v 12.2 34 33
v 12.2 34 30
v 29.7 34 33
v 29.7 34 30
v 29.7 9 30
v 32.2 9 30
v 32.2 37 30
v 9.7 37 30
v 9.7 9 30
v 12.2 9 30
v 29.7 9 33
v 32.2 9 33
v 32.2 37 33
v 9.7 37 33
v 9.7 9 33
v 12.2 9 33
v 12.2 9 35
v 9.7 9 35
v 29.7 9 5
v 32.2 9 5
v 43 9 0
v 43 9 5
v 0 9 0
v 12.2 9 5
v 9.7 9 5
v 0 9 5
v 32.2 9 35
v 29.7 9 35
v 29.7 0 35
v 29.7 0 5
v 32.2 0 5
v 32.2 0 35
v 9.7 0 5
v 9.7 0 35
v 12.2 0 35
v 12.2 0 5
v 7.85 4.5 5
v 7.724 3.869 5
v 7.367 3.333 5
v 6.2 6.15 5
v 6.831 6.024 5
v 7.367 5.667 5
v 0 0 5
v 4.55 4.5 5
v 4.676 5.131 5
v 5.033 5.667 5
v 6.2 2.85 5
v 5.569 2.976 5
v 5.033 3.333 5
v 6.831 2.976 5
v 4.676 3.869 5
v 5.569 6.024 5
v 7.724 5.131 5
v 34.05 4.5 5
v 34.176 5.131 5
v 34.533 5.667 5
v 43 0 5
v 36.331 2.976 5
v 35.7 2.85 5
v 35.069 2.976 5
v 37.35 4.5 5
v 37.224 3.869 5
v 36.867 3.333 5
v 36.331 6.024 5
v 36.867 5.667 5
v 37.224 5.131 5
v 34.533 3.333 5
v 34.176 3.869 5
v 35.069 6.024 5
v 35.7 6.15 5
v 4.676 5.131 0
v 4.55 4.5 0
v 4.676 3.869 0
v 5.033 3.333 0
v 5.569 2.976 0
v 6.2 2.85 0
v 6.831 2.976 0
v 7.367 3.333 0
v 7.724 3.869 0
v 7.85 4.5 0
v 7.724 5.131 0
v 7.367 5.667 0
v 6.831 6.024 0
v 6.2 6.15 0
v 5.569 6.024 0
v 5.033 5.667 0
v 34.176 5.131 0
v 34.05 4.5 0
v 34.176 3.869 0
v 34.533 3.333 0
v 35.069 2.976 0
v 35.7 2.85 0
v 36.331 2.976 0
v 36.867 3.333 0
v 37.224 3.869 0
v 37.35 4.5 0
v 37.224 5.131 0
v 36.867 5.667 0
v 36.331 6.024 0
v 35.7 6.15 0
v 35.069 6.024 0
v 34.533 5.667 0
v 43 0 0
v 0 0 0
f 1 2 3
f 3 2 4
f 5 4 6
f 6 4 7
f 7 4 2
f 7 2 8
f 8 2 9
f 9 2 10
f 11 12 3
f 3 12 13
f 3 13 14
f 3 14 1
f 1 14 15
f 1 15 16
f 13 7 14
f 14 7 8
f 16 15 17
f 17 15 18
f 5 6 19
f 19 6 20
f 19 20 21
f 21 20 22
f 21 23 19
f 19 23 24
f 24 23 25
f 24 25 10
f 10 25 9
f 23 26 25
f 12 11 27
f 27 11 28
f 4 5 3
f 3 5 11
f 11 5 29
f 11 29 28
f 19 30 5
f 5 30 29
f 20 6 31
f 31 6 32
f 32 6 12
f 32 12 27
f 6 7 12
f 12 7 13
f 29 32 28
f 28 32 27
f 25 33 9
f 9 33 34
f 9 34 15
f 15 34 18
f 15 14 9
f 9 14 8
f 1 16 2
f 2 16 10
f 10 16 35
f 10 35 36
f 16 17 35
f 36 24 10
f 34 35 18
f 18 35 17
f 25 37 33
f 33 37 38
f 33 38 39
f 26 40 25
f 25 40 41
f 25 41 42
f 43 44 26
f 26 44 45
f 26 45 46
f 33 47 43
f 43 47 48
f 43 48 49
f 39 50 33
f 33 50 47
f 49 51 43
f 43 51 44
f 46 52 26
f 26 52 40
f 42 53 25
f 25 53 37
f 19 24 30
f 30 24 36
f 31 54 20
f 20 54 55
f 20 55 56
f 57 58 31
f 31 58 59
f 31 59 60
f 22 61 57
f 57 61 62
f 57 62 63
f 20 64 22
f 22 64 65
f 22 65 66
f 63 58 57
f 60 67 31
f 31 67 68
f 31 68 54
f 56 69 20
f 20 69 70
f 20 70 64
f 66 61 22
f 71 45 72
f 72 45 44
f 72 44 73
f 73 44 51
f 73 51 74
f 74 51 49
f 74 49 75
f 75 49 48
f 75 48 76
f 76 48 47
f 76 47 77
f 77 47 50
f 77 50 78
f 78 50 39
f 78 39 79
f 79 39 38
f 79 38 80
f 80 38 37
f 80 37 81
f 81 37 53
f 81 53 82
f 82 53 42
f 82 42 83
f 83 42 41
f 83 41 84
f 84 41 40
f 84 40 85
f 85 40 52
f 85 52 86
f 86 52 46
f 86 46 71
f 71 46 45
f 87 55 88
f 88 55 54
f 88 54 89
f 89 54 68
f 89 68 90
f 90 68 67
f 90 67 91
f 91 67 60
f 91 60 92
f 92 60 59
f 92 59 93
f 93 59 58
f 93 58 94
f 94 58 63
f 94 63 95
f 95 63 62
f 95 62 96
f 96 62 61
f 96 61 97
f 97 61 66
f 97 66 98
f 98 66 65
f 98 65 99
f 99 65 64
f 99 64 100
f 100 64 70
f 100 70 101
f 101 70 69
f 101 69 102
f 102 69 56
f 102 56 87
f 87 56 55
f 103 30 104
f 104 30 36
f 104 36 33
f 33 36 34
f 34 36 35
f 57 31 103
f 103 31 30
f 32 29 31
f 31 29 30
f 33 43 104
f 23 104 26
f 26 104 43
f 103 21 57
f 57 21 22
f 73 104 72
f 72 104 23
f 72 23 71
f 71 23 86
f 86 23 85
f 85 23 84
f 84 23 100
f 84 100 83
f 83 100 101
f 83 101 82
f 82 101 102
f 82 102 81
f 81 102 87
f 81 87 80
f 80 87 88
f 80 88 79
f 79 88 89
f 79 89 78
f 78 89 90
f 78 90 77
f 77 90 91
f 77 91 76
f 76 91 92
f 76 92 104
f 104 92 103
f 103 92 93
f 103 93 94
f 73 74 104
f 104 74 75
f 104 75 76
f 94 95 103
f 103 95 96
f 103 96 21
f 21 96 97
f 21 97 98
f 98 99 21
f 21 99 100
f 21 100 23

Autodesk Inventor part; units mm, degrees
ref_plane "YZ Plane" through (0, 0, 0) normal (1, 0, 0) x (0, 1, 0)
ref_plane "XZ Plane" through (0, 0, 0) normal (0, 1, 0) x (-1, 0, 0)
ref_plane "XY Plane" through (0, 0, 0) normal (0, 0, 1) x (1, 0, 0)
sketch "Sketch1" plane through (0, 0, 0) normal (0, 0, 1) x (1, 0, 0)
  line L0 (0, 0) -> (43, 0)
  line L1 (43, 0) -> (43, 9)
  line L2 (43, 9) -> (0, 9)
  line L3 (0, 9) -> (0, 0)
  dimension "d0" = 43
  dimension "d1" = 9
extrude "Extrusion1" add sketch "Sketch1" along normal blind 5
sketch "Sketch2" plane through (0, 0, 5) normal (0, 0, 1) x (1, 0, 0)
  line L0 (43, 0) -> (43, 9) projected
  line L1 (43, 9) -> (0, 9) projected
  point P0 (0, 0)
  point P1 (35.7, 4.5)
  point P2 (6.2, 4.5)
  dimension "d11" = 7.3
  dimension "d12" = 29.5
  dimension "d13" = 4.5
  dimension "d14" = 4.5
hole "Hole1" at (35.7, 4.5, 5) at (6.2, 4.5, 5) direction (0, 0, -1) diameter 3.3 end through all
sketch "Sketch3" plane through (0, 0, 5) normal (0, 0, 1) x (1, 0, 0)
  line L0 (0, 0) -> (43, 0) projected
  line L1 (43, 9) -> (0, 9) projected
  line L2 (9.7, 0) -> (12.2, 0)
  line L3 (12.2, 0) -> (12.2, 9)
  line L4 (12.2, 9) -> (9.7, 9)
  line L5 (9.7, 9) -> (9.7, 0)
  line L6 (29.7, 9) -> (32.2, 9)
  line L7 (32.2, 9) -> (32.2, 0)
  line L8 (32.2, 0) -> (29.7, 0)
  line L9 (29.7, 0) -> (29.7, 9)
  circle A0 centre (35.7, 4.5) radius 1.65 projected
  point P0 (29.7, 4.5)
  point P1 (12.2, 4.5)
  point P2 (32.2, 4.5)
  point P3 (29.7, 9)
  point P4 (29.7, 0)
  point P5 (32.2, 0)
  point P6 (32.2, 9)
  point P7 (12.2, 0)
  dimension "d15" = 2.5
  dimension "d16" = 2.5
  dimension "d17" = 17.5
  dimension "d18" = 3.5
extrude "Extrusion2" add sketch "Sketch3" along normal blind 30 contours L5 L1 L3 L0 | L9 L1 L7 L0
sketch "Sketch6" plane through (0, 9, 0) normal (0, 1, 0) x (1, 0, 0)
  line L0 (12.2, -5) -> (12.2, -35) projected
  line L1 (12.2, -30) -> (9.7, -30) projected
  line L2 (12.2, -33) -> (9.7, -33)
  line L3 (9.7, -33) -> (9.7, -30)
  line L4 (9.7, -30) -> (12.2, -30)
  line L5 (12.2, -30) -> (12.2, -33)
  line L6 (29.7, -5) -> (29.7, -35) projected
  line L7 (29.7, -30) -> (32.2, -30)
  line L8 (32.2, -30) -> (32.2, -33)
  line L9 (32.2, -33) -> (29.7, -33)
  line L10 (29.7, -33) -> (29.7, -30)
  point P0 (0, 0)
  dimension "d30" = 2.5
  dimension "d31" = 3
  dimension "d32" = 3
extrude "Extrusion5" add sketch "Sketch6" along normal blind 28
sketch "Sketch7" plane through (29.7, 0, 5) normal (-1, 0, 0) x (0, 0, 1)
  line L0 (25, 37) -> (28, 37) projected
  line L1 (28, 37) -> (25, 37)
  line L2 (25, 37) -> (25, 34)
  line L3 (25, 34) -> (28, 34)
  line L4 (28, 34) -> (28, 37)
  point P0 (-5, 0)
  dimension "d35" = 3
  dimension "d36" = 3
extrude "Extrusion6" add sketch "Sketch7" along normal blind 18
properties part number "Batteryholder1"
